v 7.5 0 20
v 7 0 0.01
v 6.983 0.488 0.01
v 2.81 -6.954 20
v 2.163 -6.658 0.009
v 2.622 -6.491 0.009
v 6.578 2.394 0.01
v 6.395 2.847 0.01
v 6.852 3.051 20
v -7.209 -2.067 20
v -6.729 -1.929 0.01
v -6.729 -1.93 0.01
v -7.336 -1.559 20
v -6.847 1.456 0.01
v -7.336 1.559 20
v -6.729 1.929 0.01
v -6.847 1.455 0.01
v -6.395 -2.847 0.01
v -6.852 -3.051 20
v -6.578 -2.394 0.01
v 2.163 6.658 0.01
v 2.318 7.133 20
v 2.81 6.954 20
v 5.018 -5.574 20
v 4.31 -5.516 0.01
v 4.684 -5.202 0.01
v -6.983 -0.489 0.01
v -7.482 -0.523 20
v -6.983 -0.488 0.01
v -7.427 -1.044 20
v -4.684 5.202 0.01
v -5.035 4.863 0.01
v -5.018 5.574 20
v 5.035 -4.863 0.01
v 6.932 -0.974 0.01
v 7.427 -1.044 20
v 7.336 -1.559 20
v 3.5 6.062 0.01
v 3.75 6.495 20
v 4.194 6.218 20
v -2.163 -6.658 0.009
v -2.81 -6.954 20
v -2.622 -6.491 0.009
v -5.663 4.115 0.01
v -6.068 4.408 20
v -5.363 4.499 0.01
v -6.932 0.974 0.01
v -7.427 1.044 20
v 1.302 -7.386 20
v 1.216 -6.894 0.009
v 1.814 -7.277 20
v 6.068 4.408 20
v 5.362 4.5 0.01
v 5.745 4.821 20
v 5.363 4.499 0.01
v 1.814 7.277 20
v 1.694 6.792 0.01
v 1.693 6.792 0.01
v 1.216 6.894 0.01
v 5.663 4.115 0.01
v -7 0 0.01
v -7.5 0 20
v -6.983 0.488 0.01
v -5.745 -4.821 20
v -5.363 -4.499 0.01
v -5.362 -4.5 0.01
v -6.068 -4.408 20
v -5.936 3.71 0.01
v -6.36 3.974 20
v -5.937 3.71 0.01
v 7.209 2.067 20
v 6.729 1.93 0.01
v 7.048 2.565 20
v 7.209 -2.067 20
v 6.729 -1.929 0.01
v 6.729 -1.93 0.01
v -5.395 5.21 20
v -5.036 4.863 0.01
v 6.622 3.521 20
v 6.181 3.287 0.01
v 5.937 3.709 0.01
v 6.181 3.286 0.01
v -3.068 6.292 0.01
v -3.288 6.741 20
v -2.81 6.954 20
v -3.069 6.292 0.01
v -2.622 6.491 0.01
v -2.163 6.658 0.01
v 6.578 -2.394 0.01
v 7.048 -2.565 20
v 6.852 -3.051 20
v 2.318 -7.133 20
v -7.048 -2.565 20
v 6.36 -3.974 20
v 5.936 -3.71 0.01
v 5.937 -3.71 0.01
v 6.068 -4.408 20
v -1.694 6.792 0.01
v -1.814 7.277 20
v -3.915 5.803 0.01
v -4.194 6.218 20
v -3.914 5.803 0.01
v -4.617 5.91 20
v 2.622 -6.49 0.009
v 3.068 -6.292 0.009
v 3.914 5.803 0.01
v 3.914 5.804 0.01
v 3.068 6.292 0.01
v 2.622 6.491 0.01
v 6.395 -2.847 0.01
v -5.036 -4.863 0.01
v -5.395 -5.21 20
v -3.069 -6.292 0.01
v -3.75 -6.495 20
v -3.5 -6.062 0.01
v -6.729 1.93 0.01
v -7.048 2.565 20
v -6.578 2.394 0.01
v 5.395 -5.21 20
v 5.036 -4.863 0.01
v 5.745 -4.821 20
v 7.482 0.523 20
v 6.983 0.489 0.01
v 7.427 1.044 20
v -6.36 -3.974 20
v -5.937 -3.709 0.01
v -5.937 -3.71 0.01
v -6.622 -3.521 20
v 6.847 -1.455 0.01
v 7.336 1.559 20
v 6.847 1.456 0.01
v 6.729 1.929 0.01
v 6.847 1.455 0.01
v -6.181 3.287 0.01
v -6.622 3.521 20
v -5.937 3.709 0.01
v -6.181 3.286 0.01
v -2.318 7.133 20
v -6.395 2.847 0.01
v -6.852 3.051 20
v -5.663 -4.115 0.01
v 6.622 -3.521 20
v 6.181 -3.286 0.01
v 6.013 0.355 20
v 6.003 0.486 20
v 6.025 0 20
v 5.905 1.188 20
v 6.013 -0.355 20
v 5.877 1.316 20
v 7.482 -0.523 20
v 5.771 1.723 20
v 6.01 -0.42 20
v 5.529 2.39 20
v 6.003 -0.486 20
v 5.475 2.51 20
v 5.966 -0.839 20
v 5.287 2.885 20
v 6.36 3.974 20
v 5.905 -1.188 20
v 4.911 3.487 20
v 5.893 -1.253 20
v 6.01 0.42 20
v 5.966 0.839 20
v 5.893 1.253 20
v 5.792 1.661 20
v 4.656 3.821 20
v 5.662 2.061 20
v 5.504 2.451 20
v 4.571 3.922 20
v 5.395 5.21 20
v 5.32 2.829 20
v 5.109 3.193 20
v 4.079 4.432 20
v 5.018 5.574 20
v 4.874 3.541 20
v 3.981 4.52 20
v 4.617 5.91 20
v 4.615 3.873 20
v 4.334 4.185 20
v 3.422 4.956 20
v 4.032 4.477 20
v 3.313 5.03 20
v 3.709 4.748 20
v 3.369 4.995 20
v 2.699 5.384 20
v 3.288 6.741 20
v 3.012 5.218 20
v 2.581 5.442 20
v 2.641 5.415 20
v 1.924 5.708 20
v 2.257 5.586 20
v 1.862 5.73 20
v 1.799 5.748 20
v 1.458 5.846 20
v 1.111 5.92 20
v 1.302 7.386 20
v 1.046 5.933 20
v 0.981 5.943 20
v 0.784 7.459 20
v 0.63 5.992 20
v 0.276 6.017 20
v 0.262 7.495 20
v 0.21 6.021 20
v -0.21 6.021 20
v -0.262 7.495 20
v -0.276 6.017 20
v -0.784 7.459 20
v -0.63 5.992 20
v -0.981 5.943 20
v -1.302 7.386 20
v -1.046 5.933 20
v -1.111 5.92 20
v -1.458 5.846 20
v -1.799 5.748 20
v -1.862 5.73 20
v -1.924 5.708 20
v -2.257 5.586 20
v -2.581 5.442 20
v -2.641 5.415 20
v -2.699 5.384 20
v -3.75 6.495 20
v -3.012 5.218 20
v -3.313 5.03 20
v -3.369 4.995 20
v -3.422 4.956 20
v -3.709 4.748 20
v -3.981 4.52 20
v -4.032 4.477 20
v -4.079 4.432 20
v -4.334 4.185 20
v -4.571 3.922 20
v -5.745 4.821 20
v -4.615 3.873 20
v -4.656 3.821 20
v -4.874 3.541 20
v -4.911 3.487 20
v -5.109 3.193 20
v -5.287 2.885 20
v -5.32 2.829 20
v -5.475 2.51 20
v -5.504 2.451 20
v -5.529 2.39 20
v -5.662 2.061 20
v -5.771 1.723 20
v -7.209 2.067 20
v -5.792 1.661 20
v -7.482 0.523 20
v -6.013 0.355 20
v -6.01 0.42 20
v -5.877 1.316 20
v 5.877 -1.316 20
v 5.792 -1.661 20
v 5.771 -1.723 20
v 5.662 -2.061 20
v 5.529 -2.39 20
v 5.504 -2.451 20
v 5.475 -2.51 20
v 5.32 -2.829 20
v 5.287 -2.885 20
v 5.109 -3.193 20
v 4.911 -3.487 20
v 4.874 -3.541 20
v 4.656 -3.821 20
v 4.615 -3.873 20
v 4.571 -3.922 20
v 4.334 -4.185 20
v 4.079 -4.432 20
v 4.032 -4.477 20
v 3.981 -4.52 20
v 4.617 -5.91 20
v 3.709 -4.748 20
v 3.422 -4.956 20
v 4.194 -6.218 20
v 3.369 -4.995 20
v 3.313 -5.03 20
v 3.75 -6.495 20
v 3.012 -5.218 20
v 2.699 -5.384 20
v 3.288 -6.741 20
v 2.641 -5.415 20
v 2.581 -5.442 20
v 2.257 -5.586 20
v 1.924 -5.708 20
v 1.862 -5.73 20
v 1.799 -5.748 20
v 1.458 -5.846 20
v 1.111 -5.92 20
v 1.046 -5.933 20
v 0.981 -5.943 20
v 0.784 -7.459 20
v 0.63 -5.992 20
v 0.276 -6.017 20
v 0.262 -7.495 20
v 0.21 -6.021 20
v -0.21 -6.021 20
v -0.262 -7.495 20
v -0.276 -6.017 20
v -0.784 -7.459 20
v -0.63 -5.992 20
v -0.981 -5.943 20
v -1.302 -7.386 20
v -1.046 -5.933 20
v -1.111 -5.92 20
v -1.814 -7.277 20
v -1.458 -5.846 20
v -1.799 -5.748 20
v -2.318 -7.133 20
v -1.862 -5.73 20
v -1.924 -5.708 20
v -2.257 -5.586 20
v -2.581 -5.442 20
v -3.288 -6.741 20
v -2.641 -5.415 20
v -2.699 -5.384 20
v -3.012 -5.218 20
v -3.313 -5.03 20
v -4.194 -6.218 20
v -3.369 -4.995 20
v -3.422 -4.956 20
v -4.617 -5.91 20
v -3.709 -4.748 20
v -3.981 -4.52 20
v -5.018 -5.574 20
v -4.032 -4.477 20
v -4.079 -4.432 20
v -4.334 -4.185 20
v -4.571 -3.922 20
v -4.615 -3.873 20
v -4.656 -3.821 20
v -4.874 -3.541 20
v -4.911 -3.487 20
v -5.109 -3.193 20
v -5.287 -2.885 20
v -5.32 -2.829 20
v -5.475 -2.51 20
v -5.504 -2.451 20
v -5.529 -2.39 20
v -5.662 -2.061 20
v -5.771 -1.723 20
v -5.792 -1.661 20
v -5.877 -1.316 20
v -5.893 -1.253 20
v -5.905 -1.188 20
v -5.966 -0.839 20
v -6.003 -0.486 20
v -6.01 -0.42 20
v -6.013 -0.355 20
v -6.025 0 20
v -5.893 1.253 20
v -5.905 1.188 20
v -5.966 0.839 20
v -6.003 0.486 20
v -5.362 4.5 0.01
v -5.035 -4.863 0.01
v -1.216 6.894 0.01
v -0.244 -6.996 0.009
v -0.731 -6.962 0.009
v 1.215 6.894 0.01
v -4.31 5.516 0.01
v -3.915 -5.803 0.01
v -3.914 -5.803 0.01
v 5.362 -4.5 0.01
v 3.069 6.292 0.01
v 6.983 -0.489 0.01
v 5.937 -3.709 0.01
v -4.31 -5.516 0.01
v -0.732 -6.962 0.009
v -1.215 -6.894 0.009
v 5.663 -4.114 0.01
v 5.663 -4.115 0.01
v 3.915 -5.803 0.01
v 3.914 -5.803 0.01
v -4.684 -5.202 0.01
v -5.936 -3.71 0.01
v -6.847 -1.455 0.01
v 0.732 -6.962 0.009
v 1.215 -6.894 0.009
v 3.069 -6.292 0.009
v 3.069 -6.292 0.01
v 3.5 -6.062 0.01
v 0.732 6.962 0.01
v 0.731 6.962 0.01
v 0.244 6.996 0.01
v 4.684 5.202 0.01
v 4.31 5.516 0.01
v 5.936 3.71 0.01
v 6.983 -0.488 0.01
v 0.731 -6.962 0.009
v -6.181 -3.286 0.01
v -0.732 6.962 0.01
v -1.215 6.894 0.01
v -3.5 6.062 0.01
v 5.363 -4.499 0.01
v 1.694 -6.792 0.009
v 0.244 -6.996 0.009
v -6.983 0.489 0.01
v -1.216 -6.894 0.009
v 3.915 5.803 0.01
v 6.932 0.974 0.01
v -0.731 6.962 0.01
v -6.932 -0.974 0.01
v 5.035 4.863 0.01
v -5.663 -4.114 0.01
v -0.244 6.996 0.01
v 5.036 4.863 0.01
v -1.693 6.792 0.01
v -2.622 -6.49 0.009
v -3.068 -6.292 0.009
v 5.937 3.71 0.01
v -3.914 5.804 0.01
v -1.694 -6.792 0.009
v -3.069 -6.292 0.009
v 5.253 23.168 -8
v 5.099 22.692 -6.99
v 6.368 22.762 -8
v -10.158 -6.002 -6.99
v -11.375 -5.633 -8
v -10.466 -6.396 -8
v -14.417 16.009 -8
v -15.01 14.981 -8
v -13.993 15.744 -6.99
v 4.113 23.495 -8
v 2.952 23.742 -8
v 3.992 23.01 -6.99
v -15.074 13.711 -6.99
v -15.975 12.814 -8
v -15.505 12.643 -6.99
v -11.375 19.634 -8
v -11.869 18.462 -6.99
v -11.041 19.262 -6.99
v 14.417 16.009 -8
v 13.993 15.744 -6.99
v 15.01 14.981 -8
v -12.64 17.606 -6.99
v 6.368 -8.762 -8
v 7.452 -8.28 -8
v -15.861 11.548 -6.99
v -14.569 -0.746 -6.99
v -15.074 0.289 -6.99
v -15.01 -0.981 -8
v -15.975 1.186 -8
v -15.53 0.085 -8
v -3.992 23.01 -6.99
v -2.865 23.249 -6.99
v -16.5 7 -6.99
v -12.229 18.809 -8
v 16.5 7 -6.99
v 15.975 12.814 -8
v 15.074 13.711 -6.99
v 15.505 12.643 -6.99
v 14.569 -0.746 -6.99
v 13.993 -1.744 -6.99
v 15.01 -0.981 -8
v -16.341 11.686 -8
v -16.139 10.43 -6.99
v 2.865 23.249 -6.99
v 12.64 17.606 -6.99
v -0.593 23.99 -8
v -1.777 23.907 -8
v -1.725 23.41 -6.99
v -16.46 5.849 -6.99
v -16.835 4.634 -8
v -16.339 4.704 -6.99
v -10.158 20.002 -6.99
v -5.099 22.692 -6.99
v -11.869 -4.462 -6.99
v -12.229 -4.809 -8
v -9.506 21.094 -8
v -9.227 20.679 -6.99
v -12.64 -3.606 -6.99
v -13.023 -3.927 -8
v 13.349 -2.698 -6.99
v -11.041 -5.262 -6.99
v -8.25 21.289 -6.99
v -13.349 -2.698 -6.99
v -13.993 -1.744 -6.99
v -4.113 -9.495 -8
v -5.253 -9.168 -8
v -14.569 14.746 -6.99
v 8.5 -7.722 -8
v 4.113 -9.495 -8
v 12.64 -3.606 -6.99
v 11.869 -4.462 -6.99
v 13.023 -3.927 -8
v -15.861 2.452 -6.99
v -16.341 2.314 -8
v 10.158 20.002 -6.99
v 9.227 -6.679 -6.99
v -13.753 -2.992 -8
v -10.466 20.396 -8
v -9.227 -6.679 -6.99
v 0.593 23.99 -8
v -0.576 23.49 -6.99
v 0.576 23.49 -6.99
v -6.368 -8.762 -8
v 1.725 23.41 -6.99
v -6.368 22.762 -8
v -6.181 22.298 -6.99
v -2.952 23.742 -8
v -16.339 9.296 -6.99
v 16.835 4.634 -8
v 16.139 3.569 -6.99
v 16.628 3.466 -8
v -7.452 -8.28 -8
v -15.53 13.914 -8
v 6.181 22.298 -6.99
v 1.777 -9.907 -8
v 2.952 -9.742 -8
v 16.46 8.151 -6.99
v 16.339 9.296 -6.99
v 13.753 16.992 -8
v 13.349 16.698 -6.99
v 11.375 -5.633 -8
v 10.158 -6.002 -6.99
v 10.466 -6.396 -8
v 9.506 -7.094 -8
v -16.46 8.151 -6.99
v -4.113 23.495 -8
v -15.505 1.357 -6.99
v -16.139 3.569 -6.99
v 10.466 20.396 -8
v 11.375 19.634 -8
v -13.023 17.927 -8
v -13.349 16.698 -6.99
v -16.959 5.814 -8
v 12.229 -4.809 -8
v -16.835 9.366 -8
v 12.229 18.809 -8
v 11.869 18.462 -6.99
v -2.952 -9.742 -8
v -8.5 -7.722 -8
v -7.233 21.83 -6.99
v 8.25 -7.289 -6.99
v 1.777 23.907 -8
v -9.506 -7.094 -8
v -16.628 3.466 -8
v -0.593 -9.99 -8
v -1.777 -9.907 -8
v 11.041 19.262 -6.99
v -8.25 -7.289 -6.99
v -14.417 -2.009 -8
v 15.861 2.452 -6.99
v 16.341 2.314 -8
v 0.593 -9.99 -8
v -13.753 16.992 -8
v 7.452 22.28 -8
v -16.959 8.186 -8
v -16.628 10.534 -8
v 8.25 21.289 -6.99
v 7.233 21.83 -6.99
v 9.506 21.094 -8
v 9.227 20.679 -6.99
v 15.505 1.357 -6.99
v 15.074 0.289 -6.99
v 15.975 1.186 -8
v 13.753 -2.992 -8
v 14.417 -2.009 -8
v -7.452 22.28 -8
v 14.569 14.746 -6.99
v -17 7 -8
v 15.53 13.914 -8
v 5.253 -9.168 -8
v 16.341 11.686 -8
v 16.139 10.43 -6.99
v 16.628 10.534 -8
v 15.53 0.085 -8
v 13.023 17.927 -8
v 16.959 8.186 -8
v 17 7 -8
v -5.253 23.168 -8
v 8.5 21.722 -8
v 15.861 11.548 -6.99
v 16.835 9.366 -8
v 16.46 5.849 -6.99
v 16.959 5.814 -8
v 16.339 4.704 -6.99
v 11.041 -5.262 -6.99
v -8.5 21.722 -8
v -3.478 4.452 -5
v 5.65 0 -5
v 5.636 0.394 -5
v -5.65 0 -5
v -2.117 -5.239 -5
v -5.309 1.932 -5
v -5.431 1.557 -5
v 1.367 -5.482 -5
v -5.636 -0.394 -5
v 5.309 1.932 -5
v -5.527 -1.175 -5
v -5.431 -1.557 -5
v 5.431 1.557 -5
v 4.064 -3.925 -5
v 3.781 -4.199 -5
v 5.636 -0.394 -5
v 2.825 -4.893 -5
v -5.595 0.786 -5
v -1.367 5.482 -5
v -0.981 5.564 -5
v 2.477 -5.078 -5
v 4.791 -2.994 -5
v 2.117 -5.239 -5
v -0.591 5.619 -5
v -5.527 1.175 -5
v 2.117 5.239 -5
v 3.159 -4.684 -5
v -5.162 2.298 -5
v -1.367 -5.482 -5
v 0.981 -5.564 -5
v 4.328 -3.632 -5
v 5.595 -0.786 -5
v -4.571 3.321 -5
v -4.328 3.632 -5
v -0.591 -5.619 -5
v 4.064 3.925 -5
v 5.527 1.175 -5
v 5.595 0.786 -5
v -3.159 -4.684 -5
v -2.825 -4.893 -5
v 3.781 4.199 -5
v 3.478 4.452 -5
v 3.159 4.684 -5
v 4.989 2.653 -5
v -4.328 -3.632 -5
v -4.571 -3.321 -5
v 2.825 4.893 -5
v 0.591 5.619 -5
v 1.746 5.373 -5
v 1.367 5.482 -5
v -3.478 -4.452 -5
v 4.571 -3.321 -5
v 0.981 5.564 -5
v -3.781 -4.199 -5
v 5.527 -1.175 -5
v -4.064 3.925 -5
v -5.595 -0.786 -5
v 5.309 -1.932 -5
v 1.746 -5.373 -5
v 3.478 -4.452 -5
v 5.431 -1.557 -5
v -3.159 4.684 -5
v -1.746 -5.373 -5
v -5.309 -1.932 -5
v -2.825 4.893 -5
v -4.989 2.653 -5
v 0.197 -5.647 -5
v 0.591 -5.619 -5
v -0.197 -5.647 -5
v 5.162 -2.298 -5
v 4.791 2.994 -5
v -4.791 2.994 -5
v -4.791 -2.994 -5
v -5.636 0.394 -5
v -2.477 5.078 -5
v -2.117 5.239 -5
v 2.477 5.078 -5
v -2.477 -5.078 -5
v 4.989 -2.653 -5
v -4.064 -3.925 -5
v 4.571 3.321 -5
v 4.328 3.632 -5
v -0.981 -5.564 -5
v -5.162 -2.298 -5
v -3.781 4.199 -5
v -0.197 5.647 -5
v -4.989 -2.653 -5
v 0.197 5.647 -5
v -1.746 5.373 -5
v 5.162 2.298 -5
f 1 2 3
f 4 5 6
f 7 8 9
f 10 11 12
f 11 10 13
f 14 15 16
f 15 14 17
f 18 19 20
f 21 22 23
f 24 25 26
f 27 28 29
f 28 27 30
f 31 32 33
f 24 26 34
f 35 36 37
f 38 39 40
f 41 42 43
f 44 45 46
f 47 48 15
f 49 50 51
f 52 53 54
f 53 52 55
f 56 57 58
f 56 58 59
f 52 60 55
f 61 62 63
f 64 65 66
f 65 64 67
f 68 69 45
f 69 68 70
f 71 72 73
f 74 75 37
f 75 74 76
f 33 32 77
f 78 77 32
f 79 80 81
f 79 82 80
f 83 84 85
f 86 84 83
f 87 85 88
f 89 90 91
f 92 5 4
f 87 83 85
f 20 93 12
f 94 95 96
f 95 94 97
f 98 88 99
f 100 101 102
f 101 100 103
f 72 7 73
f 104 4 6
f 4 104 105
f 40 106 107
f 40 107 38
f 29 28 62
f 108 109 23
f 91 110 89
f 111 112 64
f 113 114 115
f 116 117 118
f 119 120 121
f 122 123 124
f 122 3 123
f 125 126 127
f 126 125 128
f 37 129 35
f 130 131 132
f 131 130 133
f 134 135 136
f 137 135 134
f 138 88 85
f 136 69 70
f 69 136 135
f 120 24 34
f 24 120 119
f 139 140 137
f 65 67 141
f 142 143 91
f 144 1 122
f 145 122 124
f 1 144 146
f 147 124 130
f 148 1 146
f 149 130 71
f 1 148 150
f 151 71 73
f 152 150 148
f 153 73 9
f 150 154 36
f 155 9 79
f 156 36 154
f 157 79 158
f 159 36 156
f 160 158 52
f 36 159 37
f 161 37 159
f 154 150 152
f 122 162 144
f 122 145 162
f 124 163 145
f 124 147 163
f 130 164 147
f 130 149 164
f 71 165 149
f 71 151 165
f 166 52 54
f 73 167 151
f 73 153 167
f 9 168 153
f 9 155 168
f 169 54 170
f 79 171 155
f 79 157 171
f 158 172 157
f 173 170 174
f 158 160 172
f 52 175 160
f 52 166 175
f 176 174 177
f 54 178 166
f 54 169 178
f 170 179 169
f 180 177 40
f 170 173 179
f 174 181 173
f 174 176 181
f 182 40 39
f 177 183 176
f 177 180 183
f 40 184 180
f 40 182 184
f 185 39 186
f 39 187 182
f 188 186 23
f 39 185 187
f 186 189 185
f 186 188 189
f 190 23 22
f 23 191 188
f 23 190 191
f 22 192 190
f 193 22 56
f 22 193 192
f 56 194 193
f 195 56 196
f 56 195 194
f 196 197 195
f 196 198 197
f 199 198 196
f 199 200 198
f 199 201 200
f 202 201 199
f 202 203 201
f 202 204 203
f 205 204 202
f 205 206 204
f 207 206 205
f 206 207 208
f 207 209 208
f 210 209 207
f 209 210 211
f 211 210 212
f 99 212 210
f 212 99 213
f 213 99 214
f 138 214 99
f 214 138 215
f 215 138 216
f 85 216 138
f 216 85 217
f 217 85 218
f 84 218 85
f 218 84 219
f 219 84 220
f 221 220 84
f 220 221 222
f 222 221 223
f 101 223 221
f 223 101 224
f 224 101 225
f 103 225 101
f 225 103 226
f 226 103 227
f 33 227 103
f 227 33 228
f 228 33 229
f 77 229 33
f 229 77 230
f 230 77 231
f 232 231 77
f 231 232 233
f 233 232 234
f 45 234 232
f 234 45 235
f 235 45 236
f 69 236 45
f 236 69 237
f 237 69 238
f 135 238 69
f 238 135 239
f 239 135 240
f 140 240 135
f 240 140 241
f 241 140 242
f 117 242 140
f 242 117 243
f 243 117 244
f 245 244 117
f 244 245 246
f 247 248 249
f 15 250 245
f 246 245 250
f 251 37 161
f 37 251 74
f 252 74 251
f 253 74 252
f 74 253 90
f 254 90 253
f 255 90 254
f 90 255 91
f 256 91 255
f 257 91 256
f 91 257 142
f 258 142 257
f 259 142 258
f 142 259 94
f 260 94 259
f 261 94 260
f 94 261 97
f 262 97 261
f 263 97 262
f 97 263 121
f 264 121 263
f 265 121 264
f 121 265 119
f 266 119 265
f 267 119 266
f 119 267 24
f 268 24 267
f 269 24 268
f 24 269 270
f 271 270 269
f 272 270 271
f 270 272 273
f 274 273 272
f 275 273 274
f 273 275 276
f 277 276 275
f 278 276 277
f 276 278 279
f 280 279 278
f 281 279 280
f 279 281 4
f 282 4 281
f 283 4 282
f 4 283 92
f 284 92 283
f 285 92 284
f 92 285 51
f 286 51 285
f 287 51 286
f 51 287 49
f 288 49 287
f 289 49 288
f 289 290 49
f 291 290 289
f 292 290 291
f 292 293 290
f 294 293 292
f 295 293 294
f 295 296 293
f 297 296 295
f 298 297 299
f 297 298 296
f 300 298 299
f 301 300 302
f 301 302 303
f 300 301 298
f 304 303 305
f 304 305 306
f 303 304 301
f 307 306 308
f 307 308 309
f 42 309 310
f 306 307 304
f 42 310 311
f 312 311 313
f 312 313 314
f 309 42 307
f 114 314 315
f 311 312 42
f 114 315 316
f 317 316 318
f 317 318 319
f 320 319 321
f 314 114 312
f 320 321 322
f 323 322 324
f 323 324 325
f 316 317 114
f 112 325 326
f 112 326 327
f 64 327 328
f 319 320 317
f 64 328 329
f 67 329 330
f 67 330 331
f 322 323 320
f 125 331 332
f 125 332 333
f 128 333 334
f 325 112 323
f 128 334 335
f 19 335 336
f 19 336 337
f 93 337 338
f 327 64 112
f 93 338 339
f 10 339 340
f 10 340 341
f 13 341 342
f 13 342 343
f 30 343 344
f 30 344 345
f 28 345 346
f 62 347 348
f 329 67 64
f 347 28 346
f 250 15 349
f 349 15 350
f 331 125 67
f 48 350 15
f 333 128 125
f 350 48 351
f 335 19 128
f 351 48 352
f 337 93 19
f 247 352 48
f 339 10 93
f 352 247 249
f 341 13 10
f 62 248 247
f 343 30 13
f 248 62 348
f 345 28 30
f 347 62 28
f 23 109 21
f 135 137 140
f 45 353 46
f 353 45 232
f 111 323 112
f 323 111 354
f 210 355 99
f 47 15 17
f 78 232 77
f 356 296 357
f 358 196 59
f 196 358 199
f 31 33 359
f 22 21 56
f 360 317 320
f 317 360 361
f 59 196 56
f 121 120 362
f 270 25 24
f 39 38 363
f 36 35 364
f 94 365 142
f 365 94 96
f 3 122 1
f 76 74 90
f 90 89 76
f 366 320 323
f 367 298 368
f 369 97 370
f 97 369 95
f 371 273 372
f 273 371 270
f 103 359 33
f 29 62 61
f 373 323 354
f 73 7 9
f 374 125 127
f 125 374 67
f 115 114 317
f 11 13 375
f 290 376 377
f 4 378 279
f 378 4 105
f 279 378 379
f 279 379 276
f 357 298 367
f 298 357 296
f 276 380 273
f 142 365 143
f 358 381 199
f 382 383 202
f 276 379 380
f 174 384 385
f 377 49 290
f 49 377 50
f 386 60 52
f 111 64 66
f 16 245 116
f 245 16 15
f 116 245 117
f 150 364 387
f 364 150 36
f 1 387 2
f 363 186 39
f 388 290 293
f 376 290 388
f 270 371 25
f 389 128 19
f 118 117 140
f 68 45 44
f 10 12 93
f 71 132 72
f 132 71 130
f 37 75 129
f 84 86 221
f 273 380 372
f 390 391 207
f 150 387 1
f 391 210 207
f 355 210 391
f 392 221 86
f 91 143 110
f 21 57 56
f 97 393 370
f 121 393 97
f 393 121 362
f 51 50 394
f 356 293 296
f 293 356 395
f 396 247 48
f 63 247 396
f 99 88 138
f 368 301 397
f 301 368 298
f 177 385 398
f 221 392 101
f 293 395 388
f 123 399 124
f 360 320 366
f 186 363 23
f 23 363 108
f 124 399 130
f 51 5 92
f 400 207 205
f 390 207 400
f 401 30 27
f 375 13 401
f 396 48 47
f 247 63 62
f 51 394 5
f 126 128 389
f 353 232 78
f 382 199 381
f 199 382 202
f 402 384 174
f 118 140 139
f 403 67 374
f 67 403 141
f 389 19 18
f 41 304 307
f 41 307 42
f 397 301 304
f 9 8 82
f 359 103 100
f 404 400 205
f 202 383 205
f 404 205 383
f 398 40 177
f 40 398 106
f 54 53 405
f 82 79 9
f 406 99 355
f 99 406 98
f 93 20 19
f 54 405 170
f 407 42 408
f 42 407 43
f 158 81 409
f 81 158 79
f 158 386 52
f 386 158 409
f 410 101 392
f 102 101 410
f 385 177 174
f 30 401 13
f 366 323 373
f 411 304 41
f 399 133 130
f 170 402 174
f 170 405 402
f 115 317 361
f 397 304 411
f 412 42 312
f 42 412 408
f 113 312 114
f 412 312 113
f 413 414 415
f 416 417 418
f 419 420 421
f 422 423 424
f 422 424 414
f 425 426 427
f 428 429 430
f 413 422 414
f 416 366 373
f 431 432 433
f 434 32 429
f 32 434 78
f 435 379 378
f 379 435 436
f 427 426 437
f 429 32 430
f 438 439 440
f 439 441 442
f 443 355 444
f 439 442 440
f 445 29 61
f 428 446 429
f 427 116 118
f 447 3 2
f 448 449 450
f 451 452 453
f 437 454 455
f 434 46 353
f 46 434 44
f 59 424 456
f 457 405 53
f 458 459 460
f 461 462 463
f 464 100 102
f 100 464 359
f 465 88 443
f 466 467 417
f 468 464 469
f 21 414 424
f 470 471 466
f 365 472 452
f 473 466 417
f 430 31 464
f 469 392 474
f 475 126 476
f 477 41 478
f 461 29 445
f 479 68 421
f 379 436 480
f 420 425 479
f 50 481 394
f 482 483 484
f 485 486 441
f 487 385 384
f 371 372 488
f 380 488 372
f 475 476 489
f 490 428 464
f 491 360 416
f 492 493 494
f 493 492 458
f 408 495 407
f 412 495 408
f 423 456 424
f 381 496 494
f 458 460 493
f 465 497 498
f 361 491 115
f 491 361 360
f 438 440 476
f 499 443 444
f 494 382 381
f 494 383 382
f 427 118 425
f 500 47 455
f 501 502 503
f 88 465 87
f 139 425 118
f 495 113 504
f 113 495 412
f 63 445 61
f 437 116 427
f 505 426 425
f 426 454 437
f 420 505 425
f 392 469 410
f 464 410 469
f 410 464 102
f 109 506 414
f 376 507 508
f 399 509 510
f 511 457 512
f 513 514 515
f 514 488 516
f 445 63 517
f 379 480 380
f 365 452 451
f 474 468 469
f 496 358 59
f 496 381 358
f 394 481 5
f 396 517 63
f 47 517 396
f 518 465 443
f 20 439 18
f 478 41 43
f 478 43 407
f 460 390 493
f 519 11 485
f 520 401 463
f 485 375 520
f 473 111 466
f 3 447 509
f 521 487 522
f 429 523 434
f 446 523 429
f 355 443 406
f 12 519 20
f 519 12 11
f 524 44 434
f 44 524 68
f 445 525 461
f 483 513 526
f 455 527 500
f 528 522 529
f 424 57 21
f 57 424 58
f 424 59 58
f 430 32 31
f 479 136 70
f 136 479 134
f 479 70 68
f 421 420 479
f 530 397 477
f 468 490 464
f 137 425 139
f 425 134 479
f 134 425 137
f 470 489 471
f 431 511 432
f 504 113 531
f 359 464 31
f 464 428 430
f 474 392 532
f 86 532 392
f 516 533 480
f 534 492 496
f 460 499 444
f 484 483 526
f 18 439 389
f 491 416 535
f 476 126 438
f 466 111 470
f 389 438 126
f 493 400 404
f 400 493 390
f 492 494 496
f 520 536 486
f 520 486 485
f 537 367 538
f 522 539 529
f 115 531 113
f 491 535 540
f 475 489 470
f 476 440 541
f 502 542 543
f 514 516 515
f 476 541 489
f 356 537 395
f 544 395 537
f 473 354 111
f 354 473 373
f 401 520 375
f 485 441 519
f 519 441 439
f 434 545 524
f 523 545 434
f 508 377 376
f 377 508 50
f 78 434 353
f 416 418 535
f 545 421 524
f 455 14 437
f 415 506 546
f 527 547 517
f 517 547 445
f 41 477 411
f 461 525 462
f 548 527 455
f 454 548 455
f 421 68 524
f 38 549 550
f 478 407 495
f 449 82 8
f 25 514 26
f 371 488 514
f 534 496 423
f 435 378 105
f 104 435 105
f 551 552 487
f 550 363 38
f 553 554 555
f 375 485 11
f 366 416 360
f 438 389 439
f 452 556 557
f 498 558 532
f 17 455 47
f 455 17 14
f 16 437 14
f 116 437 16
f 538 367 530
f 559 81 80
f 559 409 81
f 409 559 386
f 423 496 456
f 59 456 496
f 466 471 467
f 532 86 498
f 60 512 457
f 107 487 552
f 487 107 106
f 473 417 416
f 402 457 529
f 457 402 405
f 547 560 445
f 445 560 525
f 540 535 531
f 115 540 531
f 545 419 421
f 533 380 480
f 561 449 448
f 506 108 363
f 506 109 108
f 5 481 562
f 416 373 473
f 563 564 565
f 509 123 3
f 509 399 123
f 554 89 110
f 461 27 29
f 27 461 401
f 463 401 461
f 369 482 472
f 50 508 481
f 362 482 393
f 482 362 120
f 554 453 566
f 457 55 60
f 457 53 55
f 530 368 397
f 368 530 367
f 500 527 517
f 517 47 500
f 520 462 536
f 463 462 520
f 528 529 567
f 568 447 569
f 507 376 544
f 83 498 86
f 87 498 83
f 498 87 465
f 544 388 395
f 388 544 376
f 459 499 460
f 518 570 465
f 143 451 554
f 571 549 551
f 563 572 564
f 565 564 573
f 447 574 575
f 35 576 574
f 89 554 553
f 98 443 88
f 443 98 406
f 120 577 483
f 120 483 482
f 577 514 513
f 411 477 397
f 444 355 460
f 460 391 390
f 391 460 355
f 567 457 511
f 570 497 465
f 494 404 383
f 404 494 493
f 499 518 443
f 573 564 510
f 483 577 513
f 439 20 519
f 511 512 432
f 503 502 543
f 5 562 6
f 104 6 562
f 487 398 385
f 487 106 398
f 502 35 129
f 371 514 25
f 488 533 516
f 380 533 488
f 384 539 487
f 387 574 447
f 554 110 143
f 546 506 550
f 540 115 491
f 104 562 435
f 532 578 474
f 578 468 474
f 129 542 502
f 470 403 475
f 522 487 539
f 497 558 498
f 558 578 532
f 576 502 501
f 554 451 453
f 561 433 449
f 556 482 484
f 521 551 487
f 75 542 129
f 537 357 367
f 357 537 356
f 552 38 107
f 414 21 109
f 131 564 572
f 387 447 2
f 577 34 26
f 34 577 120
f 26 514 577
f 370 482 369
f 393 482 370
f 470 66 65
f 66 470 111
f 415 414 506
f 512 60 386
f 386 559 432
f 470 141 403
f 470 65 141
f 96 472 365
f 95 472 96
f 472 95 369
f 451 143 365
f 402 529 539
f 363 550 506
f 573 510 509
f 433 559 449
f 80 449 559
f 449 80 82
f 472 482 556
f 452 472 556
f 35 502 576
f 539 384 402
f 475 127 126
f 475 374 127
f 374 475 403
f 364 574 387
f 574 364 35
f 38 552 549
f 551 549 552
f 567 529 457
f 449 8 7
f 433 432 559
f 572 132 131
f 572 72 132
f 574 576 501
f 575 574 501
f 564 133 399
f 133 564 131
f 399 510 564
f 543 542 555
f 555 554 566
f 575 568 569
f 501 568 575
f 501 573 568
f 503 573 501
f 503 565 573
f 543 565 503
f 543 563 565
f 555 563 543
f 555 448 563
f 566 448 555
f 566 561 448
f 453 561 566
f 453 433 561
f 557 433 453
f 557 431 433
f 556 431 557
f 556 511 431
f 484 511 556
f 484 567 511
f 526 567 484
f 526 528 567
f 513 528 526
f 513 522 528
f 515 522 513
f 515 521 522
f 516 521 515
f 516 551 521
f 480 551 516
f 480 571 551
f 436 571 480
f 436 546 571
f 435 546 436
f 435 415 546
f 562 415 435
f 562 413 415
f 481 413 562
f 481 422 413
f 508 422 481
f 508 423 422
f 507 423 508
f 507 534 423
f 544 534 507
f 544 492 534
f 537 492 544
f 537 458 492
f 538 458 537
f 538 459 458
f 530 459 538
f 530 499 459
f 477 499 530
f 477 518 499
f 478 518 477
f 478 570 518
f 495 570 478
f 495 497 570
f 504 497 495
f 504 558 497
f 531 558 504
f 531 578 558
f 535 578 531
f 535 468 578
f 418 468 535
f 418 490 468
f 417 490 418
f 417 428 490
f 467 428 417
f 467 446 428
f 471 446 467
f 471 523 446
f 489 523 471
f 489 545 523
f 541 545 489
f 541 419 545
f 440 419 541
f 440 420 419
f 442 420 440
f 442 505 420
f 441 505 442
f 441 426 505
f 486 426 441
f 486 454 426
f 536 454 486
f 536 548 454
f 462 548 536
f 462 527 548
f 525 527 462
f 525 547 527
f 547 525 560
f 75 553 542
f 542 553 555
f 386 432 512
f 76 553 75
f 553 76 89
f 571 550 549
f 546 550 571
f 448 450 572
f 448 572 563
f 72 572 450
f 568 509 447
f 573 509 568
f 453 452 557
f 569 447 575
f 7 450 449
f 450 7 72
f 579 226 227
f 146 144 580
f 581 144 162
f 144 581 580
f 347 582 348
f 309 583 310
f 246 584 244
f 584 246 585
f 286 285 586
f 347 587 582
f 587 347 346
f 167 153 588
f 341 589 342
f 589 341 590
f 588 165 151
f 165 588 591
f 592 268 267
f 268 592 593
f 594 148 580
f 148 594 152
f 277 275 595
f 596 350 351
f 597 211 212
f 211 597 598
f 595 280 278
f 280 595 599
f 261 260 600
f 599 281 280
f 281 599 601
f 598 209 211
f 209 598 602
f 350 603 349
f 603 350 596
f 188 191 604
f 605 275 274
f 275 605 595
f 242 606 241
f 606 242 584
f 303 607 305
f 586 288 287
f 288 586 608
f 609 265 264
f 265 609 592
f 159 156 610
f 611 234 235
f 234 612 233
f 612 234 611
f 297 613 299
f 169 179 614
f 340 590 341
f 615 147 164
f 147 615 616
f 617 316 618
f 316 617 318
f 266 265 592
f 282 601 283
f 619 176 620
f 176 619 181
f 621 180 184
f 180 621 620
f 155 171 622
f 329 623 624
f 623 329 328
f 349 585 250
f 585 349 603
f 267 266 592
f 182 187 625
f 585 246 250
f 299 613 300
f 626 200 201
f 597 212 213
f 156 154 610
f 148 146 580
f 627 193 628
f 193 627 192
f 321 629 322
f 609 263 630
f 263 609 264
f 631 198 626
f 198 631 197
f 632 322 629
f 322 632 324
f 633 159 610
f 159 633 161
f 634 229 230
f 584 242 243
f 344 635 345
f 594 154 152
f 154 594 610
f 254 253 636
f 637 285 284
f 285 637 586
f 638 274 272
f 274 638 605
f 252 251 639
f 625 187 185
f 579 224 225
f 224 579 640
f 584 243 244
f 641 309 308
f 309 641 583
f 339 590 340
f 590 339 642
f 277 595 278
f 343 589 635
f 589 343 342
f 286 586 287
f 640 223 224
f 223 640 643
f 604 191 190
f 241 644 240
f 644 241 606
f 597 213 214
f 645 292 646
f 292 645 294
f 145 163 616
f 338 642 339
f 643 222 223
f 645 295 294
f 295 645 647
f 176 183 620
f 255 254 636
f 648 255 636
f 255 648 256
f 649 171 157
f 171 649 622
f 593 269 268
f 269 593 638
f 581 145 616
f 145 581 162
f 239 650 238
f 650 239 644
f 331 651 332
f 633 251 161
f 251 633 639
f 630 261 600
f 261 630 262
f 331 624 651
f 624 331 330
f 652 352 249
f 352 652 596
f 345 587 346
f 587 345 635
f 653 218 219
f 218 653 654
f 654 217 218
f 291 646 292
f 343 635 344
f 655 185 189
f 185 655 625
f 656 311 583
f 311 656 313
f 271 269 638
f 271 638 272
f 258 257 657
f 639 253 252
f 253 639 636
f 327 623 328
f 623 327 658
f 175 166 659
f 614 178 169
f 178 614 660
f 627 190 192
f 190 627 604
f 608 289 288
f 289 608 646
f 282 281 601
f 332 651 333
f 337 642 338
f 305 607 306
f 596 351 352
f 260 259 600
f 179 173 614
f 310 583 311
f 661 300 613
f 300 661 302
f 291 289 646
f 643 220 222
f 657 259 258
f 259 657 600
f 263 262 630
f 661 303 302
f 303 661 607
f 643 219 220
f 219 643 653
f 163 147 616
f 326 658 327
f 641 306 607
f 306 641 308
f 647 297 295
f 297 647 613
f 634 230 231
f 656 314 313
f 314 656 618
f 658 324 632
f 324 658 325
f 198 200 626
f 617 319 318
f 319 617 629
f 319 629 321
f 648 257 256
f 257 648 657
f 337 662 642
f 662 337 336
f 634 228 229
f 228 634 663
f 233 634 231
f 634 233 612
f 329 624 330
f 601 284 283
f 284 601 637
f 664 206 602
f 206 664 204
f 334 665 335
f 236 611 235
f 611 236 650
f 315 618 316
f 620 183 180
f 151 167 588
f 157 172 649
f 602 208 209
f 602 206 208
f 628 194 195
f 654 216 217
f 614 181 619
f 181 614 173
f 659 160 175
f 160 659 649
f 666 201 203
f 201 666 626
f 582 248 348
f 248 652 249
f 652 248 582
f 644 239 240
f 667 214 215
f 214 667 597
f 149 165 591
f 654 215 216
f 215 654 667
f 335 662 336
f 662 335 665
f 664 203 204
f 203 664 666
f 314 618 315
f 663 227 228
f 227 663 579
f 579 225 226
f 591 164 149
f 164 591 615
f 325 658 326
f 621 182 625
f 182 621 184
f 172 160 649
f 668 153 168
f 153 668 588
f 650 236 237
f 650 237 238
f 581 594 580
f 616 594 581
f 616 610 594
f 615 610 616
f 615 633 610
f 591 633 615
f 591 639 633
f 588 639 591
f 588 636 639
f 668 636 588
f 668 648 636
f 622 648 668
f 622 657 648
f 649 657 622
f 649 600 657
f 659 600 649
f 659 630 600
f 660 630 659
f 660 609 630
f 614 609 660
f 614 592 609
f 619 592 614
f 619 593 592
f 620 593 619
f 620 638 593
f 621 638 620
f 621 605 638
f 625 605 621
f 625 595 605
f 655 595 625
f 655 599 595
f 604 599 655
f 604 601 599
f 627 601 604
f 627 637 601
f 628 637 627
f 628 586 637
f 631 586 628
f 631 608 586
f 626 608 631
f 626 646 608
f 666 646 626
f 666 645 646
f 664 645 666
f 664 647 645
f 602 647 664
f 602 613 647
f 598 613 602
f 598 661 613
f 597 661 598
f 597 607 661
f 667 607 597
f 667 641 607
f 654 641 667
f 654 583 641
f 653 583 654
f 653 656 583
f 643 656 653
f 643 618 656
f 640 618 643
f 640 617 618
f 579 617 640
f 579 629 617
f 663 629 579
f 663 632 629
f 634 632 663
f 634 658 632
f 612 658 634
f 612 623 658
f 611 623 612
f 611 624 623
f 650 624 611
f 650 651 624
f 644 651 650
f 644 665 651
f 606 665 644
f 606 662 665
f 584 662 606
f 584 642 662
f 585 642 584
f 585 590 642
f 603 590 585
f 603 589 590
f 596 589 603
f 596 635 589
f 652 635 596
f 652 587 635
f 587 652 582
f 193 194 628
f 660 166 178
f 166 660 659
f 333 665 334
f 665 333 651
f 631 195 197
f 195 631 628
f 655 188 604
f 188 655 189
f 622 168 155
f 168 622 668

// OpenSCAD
//no bottom and top perimeters just gyro infill

$fn=90;

difference(){
    union(){
    cylinder(d1=14,d2=15,h=20);
    translate([0,0,-8])hull(){
        translate([0,0,7])
        cylinder(d2=14, d1=14, h=1.01);
        translate([0,7,0])cylinder(d1=34,d2=33, h=1.01);
    }
    }
    translate([0,0,-5])cylinder(d1=11.3,d2=12.2,h=30);
}
